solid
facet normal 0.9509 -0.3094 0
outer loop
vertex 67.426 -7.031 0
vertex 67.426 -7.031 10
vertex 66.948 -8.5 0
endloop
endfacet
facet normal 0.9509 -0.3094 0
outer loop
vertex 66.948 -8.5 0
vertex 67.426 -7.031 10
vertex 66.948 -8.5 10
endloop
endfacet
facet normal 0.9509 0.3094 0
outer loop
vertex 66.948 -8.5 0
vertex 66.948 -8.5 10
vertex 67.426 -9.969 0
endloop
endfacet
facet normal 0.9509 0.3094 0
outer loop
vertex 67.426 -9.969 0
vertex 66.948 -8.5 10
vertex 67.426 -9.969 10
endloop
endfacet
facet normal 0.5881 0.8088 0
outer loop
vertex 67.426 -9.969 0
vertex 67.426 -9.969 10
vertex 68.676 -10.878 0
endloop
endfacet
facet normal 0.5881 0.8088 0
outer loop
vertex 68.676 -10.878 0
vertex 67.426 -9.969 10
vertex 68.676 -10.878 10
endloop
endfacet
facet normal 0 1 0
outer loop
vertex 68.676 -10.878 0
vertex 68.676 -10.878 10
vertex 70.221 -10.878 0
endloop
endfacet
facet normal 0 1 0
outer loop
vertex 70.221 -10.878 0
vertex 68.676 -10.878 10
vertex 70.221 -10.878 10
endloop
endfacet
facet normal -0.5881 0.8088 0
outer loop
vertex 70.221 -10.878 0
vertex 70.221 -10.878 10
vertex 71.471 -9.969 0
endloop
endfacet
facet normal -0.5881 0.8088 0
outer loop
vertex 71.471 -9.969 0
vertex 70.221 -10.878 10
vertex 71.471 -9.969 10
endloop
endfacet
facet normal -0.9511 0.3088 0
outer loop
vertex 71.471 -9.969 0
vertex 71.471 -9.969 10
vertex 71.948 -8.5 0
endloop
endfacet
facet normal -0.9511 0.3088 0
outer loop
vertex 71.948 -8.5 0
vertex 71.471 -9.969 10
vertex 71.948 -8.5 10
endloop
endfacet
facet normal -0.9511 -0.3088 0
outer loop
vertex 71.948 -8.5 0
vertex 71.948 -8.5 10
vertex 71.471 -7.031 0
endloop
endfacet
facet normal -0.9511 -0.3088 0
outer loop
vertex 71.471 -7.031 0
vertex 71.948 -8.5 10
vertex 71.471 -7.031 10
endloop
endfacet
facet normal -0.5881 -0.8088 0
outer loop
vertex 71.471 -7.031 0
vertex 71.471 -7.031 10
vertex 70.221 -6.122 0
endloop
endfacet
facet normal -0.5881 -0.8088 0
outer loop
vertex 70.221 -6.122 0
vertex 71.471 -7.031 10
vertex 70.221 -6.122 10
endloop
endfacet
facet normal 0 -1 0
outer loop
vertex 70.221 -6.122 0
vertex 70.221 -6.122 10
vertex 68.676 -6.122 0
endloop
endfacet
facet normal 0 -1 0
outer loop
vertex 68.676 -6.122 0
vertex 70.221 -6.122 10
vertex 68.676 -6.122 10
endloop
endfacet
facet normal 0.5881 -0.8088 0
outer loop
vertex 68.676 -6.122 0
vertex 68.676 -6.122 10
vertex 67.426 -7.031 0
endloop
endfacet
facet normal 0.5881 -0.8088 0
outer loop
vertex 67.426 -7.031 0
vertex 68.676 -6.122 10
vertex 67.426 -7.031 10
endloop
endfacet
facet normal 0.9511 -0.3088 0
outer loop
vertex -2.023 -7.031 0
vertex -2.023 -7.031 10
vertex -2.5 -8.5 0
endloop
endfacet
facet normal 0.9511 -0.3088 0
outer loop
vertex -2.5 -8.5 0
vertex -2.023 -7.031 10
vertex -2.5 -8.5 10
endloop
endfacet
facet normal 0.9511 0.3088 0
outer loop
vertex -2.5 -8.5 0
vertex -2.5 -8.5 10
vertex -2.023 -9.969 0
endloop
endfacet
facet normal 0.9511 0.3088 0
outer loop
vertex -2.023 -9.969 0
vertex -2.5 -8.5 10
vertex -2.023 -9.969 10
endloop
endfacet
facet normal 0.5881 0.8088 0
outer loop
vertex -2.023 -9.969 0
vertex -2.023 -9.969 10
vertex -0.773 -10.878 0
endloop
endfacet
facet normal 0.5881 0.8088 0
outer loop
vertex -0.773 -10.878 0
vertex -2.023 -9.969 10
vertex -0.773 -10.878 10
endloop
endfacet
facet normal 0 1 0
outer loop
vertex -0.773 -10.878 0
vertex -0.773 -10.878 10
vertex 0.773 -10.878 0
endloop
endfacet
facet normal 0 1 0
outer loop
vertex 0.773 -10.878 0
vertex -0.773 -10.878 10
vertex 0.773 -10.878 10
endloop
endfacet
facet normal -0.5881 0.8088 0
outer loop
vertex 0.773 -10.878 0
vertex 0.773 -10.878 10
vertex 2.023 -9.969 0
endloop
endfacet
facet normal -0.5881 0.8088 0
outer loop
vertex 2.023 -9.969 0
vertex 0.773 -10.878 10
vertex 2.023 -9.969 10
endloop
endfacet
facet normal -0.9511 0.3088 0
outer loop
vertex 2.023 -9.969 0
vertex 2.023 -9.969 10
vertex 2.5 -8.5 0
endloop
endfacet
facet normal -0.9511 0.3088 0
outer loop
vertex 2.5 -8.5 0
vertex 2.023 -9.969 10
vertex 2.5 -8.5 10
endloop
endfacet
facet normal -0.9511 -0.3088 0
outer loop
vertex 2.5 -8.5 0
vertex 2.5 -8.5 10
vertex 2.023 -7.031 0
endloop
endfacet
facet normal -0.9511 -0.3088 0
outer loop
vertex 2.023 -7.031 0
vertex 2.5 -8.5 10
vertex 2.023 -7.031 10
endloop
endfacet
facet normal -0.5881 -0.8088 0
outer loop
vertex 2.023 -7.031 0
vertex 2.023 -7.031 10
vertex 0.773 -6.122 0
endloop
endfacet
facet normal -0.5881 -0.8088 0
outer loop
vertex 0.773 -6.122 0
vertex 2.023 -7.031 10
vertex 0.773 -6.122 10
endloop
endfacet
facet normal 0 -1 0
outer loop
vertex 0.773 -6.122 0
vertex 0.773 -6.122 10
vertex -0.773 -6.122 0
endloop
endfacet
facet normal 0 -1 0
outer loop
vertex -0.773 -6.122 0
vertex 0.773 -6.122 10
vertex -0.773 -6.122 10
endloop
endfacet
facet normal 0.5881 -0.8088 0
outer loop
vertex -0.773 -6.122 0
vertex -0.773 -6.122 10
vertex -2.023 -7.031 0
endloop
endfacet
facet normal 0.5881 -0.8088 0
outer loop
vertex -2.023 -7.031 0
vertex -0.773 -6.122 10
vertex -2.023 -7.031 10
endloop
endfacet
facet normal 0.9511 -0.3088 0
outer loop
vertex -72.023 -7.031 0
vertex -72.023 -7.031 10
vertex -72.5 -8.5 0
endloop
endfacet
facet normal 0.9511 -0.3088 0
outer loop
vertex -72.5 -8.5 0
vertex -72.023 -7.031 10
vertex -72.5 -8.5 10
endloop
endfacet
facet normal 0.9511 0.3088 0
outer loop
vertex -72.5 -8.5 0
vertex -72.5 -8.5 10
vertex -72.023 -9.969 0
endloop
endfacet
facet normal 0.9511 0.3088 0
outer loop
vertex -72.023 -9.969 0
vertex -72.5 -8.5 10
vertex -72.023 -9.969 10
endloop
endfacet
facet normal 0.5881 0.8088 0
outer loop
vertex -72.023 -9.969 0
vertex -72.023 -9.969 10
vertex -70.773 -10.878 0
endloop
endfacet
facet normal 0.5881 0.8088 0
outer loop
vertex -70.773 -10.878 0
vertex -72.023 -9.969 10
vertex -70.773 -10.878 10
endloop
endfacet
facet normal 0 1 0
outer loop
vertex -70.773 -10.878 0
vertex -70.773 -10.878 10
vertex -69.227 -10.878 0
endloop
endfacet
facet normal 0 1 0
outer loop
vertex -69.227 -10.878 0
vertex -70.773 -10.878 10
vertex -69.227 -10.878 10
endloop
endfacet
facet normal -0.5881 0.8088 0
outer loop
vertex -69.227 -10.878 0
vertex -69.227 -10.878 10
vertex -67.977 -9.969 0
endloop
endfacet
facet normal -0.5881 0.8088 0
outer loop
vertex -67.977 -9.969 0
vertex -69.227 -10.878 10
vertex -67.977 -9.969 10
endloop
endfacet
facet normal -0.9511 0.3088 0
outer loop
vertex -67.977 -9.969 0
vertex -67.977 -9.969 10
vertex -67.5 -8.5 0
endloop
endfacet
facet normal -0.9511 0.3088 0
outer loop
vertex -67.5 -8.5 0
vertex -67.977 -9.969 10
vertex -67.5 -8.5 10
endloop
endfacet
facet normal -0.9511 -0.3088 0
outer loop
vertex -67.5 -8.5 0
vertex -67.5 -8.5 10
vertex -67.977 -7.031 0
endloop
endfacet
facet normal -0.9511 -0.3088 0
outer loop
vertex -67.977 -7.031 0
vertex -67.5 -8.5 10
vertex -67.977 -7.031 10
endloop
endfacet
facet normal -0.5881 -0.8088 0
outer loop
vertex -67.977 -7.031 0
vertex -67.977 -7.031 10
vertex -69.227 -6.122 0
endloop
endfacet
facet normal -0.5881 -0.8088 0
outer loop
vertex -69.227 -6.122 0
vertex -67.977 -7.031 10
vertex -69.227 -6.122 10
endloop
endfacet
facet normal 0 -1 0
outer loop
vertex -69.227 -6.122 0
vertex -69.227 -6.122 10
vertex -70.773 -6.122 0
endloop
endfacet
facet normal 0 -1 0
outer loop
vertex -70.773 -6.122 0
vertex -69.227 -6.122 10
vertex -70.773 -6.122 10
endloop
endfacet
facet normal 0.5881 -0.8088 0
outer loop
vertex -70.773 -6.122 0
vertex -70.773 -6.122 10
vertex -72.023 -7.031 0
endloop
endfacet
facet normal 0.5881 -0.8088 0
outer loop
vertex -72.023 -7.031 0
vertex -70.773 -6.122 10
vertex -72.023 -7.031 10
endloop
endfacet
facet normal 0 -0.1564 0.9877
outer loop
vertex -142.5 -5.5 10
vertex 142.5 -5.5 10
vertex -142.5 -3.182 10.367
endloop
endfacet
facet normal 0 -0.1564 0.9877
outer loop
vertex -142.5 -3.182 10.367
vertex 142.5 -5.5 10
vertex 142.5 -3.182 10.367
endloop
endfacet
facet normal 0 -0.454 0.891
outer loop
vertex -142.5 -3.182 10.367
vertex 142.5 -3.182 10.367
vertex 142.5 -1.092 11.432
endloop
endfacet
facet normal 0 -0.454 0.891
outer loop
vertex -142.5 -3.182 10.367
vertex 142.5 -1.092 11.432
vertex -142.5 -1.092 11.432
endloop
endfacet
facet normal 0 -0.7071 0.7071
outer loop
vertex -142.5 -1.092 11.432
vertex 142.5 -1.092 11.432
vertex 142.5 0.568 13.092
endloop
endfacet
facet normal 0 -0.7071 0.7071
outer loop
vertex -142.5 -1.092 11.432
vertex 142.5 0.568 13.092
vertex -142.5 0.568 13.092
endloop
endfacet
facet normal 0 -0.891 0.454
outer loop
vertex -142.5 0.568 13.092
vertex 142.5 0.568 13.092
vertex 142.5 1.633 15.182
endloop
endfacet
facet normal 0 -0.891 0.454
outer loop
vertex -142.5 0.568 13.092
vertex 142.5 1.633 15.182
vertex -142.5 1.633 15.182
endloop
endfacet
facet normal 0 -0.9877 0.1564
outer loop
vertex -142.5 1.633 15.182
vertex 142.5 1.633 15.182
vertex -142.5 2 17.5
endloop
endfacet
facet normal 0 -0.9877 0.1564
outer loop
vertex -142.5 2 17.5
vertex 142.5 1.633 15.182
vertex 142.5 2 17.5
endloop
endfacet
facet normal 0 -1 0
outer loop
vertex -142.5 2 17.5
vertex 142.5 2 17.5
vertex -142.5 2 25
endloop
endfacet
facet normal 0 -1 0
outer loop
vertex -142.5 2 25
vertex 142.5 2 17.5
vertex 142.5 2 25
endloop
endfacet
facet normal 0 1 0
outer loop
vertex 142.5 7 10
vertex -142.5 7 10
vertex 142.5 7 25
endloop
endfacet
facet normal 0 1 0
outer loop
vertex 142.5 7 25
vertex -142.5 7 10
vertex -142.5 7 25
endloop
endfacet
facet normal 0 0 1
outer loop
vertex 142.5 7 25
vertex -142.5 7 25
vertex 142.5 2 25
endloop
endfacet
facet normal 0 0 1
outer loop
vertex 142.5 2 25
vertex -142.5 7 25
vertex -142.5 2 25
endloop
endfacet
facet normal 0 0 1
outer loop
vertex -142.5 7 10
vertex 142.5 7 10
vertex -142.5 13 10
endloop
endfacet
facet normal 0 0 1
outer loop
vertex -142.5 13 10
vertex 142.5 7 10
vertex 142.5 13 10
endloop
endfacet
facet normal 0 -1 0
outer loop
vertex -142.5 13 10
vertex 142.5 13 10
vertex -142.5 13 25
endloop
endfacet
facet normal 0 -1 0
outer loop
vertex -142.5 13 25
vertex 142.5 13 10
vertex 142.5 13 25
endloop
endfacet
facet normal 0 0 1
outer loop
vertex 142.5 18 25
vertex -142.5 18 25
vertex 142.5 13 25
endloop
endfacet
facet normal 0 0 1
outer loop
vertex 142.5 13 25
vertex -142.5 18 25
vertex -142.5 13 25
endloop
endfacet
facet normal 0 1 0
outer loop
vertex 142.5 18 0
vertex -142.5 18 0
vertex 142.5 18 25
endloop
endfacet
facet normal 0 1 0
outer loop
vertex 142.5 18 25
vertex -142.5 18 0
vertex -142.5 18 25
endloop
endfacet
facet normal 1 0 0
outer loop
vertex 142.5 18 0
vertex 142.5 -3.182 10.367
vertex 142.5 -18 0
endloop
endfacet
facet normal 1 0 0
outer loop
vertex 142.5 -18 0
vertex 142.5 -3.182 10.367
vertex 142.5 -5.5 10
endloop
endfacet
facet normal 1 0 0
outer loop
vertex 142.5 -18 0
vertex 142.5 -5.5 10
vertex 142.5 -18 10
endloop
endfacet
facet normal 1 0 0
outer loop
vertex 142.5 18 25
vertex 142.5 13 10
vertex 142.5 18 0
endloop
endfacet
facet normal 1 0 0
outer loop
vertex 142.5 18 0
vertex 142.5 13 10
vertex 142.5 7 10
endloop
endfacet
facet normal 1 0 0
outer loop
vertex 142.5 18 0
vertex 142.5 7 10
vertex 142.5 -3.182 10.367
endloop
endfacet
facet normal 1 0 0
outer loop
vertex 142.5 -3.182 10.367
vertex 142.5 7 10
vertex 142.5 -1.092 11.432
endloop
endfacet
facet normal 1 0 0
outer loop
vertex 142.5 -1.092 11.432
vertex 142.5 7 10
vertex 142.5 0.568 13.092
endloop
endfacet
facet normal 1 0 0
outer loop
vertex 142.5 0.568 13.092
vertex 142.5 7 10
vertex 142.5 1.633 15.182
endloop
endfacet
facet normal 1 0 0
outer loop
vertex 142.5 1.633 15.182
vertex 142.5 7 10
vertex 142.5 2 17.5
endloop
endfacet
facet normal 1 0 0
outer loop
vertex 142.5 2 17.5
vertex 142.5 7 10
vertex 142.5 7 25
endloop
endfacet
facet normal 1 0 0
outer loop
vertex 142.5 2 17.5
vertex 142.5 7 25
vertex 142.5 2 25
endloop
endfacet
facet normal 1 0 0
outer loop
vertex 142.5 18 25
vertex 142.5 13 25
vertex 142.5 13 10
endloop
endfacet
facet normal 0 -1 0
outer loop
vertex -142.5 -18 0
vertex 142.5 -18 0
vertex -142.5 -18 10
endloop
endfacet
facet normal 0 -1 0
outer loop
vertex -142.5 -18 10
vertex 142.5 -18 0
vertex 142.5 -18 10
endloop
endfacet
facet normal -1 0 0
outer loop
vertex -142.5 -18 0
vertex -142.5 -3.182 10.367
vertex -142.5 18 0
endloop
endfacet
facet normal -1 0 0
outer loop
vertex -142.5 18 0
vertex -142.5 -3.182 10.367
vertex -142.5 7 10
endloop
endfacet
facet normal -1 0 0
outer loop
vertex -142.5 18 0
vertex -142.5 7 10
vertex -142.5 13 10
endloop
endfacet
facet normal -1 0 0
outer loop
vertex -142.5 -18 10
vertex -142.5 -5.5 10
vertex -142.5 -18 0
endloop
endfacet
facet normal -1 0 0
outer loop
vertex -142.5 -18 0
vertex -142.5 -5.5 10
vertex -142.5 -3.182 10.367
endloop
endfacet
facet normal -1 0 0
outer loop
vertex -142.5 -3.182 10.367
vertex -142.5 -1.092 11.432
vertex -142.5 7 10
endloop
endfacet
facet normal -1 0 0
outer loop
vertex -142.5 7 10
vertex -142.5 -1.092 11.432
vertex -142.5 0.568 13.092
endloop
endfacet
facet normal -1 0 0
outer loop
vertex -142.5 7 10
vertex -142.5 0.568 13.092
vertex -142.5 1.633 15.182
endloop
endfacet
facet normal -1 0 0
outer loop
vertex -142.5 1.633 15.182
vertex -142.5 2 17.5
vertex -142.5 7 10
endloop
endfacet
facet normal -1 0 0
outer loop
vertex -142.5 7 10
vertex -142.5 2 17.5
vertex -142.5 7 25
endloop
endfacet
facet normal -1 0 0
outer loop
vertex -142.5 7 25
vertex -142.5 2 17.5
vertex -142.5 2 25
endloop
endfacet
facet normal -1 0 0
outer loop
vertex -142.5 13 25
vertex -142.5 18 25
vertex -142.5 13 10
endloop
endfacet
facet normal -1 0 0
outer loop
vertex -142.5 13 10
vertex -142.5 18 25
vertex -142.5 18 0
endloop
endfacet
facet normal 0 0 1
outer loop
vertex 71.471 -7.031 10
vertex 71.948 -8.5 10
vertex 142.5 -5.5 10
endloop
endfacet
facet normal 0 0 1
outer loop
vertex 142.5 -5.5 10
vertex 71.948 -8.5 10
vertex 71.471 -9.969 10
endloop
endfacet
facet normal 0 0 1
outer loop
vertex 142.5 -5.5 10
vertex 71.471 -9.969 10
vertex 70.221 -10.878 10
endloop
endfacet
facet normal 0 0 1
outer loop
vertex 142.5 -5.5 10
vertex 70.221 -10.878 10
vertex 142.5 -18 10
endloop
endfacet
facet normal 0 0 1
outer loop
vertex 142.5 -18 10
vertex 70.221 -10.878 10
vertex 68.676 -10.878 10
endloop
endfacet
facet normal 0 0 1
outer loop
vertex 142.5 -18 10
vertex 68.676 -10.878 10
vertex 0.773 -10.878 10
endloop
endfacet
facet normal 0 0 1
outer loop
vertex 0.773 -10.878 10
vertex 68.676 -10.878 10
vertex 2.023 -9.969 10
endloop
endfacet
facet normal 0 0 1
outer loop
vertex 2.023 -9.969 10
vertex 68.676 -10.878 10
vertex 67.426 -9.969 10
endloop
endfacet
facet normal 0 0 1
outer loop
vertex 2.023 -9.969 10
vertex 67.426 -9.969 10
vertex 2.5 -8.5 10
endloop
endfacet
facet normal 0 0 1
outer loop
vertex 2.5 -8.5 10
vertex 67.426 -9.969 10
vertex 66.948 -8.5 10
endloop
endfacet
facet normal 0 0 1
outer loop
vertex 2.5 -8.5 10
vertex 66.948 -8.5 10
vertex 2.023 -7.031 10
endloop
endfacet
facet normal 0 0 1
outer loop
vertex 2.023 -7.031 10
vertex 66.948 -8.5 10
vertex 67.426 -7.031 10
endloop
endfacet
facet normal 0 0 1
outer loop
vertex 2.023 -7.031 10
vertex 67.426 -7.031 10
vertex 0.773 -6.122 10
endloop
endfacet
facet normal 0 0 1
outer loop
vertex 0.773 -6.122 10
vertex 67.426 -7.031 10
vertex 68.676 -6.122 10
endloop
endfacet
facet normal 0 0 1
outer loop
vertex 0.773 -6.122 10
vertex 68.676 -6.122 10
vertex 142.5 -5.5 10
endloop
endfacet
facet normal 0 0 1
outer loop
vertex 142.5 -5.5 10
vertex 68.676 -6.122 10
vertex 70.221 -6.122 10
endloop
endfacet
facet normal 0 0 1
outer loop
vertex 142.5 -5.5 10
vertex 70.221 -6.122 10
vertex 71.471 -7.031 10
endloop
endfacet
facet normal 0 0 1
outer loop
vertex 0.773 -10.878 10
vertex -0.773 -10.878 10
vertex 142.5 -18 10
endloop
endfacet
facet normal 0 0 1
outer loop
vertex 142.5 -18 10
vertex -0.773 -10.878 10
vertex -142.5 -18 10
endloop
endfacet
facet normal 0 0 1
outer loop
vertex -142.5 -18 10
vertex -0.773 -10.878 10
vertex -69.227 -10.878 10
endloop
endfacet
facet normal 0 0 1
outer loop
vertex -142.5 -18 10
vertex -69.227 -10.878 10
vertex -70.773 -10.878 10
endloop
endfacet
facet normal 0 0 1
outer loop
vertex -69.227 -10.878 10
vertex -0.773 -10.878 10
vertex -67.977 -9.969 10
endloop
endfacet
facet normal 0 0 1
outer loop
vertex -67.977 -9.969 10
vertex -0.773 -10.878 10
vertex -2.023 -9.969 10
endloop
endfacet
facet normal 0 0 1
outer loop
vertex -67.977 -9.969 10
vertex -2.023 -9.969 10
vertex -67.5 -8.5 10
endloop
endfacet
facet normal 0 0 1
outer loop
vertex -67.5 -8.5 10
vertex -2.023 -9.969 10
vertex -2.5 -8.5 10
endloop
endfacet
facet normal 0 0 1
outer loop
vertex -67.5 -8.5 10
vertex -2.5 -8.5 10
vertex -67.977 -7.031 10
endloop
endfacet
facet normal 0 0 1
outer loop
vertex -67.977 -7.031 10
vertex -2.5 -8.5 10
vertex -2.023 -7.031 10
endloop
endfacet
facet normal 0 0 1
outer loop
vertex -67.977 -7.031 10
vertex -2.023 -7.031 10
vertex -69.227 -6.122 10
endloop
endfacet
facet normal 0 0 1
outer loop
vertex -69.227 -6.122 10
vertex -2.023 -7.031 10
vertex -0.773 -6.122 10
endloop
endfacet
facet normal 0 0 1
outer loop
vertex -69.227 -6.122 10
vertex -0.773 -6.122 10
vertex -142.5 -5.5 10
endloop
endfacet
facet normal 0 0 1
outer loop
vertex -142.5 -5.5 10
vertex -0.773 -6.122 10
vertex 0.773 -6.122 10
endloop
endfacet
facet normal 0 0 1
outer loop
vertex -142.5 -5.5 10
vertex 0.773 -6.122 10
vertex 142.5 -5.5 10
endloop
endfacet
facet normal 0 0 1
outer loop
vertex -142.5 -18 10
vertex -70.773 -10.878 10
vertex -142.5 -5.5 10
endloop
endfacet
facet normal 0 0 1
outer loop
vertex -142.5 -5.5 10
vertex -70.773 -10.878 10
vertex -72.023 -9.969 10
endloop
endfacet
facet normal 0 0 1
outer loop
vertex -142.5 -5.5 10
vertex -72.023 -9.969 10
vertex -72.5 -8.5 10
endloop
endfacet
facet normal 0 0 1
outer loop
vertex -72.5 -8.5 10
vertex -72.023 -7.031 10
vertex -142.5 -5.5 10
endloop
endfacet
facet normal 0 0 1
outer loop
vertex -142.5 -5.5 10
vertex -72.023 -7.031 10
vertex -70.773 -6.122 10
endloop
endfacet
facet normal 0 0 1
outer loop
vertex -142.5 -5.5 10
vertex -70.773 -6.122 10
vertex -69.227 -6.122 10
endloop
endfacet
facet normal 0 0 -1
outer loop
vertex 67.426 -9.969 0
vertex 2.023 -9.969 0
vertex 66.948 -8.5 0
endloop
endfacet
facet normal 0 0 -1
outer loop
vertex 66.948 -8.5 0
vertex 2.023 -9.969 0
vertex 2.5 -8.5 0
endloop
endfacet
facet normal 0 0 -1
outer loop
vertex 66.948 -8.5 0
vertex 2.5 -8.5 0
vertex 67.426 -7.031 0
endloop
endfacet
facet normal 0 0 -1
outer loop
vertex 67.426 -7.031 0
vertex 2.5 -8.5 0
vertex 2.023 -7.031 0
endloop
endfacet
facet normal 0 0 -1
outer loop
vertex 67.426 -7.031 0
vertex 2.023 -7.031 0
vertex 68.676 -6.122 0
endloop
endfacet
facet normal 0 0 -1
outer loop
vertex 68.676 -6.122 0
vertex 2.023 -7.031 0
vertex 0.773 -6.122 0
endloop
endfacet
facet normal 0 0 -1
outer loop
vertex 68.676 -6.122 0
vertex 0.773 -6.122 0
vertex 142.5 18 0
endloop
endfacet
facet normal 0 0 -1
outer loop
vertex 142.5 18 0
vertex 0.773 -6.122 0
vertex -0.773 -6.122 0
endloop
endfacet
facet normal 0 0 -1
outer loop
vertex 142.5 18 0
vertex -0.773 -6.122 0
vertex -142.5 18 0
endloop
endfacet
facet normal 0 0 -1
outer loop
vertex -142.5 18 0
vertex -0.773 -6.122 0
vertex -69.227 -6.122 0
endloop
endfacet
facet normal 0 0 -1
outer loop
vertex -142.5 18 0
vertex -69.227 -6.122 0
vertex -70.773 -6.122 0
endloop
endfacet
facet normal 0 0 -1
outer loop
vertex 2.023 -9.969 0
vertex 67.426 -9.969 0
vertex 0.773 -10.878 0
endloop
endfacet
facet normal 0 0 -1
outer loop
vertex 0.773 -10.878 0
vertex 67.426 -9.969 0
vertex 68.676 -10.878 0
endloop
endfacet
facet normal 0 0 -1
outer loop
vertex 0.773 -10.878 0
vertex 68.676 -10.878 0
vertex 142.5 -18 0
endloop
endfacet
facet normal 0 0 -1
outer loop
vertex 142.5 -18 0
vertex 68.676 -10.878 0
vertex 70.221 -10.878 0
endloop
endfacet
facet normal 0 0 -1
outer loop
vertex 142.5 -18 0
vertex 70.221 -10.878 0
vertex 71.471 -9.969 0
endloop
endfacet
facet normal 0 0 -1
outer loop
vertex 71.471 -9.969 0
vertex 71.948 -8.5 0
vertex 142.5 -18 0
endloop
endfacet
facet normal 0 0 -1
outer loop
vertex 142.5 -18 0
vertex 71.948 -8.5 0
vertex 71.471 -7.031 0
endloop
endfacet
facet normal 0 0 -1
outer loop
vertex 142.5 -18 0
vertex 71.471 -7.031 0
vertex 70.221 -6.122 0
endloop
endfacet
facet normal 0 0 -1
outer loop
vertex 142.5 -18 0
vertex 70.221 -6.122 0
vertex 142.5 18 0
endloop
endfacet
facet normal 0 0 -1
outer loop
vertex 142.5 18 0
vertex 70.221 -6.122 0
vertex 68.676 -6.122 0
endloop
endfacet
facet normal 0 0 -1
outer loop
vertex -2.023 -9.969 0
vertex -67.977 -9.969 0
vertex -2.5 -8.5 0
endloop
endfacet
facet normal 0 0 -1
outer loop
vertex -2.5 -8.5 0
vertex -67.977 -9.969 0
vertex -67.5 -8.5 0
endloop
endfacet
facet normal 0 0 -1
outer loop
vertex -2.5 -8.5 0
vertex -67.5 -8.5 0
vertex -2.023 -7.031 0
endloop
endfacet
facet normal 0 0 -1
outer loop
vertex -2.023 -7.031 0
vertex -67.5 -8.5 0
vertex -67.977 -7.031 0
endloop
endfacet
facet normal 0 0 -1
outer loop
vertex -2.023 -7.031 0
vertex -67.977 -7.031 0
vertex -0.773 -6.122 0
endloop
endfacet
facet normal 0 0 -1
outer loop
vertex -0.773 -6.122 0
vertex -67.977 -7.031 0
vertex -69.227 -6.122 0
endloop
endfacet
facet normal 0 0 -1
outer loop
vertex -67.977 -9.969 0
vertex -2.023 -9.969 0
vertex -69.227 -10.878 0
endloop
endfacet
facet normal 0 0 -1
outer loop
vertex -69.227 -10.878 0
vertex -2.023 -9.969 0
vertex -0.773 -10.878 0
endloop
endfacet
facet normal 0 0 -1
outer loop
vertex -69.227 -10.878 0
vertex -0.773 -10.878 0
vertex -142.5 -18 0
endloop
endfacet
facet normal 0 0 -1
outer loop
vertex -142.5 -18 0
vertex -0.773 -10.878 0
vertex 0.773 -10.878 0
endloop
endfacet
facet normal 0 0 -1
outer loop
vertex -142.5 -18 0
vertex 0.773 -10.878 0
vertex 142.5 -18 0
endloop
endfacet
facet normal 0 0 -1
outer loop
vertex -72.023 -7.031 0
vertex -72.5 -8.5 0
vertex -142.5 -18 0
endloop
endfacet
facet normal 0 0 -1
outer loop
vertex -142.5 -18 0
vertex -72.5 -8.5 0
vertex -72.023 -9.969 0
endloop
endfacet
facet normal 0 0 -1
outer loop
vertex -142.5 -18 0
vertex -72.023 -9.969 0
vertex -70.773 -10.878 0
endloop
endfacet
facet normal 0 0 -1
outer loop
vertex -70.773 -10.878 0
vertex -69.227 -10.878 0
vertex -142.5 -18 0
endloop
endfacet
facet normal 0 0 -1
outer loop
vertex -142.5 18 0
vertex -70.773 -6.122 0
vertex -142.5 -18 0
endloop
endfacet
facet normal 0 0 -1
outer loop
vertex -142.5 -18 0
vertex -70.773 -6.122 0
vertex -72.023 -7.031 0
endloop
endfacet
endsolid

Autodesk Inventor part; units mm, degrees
ref_plane "YZ Plane" through (0, 0, 0) normal (1, 0, 0) x (0, 1, 0)
ref_plane "XZ Plane" through (0, 0, 0) normal (0, 1, 0) x (-1, 0, 0)
ref_plane "XY Plane" through (0, 0, 0) normal (0, 0, 1) x (1, 0, 0)
sketch "Sketch1" plane through (0, 0, 0) normal (0, 0, 1) x (1, 0, 0)
  line L0 (142.5, 18) -> (-142.5, 18)
  line L1 (-142.5, 18) -> (-142.5, -18)
  line L2 (-142.5, -18) -> (142.5, -18)
  line L3 (142.5, -18) -> (142.5, 18)
  line L4 (142.5, 18) -> (-142.5, -18) construction
  line L5 (-142.5, 18) -> (142.5, -18) construction
  line L6 (-142.5, 18) -> (142.5, 18)
  line L7 (142.5, 18) -> (142.5, 8)
  line L8 (142.5, 8) -> (-142.5, 8)
  line L9 (-142.5, 8) -> (-142.5, 18)
  point P0 (0, 0)
  point P1 (142.5, 13)
  dimension "d0" = 285
  dimension "d1" = 36
  dimension "d4" = 5
extrude "Extrusion1" add sketch "Sketch1" along normal blind 10
sketch "Sketch4" plane through (0, 0, 10) normal (0, 0, 1) x (1, 0, 0)
  line L0 (-142.5, 18) -> (-142.5, -18) projected
  line L1 (-142.5, 18) -> (142.5, 18)
  line L2 (142.5, 18) -> (142.5, 13)
  line L3 (142.5, 13) -> (-142.5, 13)
  line L4 (-142.5, 13) -> (-142.5, 18)
  point P0 (0, 0)
  dimension "d5" = 285
  dimension "d6" = 5
extrude "Extrusion2" add sketch "Sketch4" along normal blind 15
sketch "Sketch5" plane through (0, 0, 10) normal (0, 0, 1) x (1, 0, 0)
  line L0 (-142.5, 18) -> (-142.5, -18) projected
  line L1 (-142.5, 7) -> (142.5, 7)
  line L2 (142.5, 7) -> (142.5, 2)
  line L3 (142.5, 2) -> (-142.5, 2)
  line L4 (-142.5, 2) -> (-142.5, 7)
  line L5 (142.5, 13) -> (-142.5, 13) projected
  point P0 (0, 0)
  dimension "d9" = 285
  dimension "d10" = 5
  dimension "d47" = 11
extrude "Extrusion3" add sketch "Sketch5" along normal blind 15
fillet "Fillet1" radius 7.5 1 edges at (0, 2, 10)
sketch "Sketch6" plane through (0, 0, 10) normal (0, 0, 1) x (1, 0, 0)
  circle A0 centre (-70, -8.5) radius 2.5
  line L0 (-142.5, -5.5) -> (142.5, -5.5) projected
  line L1 (-142.5, -18) -> (142.5, -18) projected
  point P0 (0, 0)
  point P1 (0, -5.5)
  point P2 (0, -5.5)
  dimension "d50" = 70
  dimension "d51" = 9.5
hole "Hole1" at (-70, -8.5, 10) direction (0, 0, -1) diameter 5 end through all
sketch "Sketch7" plane through (0, 0, 10) normal (0, 0, 1) x (1, 0, 0)
  circle A0 centre (0, -8.5) radius 2.5
  circle A1 centre (-70, -8.5) radius 2.5 projected
  line L0 (-142.5, -18) -> (142.5, -18) projected
  point P0 (0, 0)
  point P1 (-69.25, -4.8686)
  point P2 (-64.25, -4.8686)
  dimension "d23" = 5
  dimension "d39" = 70
  dimension "d43" = 9.5
hole "Hole2" at (0, -8.5, 10) direction (0, 0, -1) diameter 5 end through all
sketch "Sketch8" plane through (0, 0, 10) normal (0, 0, 1) x (1, 0, 0)
  circle A0 centre (69.4481, -8.5) radius 2.5
  circle A1 centre (0, -8.5) radius 2.5 projected
  line L0 (-142.5, -5.5) -> (142.5, -5.5) projected
  line L1 (-142.5, -18) -> (142.5, -18) projected
  point P0 (0, 0)
  point P1 (-1.3066, -5.3686)
  point P2 (1.3066, -5.3686)
  point P3 (-70, -4.8686)
  dimension "d31" = 5
  dimension "d48" = 7
hole "Hole3" at (69.4481, -8.5, 10) direction (0, 0, -1) diameter 5 end through all
properties part number "side part v3"
